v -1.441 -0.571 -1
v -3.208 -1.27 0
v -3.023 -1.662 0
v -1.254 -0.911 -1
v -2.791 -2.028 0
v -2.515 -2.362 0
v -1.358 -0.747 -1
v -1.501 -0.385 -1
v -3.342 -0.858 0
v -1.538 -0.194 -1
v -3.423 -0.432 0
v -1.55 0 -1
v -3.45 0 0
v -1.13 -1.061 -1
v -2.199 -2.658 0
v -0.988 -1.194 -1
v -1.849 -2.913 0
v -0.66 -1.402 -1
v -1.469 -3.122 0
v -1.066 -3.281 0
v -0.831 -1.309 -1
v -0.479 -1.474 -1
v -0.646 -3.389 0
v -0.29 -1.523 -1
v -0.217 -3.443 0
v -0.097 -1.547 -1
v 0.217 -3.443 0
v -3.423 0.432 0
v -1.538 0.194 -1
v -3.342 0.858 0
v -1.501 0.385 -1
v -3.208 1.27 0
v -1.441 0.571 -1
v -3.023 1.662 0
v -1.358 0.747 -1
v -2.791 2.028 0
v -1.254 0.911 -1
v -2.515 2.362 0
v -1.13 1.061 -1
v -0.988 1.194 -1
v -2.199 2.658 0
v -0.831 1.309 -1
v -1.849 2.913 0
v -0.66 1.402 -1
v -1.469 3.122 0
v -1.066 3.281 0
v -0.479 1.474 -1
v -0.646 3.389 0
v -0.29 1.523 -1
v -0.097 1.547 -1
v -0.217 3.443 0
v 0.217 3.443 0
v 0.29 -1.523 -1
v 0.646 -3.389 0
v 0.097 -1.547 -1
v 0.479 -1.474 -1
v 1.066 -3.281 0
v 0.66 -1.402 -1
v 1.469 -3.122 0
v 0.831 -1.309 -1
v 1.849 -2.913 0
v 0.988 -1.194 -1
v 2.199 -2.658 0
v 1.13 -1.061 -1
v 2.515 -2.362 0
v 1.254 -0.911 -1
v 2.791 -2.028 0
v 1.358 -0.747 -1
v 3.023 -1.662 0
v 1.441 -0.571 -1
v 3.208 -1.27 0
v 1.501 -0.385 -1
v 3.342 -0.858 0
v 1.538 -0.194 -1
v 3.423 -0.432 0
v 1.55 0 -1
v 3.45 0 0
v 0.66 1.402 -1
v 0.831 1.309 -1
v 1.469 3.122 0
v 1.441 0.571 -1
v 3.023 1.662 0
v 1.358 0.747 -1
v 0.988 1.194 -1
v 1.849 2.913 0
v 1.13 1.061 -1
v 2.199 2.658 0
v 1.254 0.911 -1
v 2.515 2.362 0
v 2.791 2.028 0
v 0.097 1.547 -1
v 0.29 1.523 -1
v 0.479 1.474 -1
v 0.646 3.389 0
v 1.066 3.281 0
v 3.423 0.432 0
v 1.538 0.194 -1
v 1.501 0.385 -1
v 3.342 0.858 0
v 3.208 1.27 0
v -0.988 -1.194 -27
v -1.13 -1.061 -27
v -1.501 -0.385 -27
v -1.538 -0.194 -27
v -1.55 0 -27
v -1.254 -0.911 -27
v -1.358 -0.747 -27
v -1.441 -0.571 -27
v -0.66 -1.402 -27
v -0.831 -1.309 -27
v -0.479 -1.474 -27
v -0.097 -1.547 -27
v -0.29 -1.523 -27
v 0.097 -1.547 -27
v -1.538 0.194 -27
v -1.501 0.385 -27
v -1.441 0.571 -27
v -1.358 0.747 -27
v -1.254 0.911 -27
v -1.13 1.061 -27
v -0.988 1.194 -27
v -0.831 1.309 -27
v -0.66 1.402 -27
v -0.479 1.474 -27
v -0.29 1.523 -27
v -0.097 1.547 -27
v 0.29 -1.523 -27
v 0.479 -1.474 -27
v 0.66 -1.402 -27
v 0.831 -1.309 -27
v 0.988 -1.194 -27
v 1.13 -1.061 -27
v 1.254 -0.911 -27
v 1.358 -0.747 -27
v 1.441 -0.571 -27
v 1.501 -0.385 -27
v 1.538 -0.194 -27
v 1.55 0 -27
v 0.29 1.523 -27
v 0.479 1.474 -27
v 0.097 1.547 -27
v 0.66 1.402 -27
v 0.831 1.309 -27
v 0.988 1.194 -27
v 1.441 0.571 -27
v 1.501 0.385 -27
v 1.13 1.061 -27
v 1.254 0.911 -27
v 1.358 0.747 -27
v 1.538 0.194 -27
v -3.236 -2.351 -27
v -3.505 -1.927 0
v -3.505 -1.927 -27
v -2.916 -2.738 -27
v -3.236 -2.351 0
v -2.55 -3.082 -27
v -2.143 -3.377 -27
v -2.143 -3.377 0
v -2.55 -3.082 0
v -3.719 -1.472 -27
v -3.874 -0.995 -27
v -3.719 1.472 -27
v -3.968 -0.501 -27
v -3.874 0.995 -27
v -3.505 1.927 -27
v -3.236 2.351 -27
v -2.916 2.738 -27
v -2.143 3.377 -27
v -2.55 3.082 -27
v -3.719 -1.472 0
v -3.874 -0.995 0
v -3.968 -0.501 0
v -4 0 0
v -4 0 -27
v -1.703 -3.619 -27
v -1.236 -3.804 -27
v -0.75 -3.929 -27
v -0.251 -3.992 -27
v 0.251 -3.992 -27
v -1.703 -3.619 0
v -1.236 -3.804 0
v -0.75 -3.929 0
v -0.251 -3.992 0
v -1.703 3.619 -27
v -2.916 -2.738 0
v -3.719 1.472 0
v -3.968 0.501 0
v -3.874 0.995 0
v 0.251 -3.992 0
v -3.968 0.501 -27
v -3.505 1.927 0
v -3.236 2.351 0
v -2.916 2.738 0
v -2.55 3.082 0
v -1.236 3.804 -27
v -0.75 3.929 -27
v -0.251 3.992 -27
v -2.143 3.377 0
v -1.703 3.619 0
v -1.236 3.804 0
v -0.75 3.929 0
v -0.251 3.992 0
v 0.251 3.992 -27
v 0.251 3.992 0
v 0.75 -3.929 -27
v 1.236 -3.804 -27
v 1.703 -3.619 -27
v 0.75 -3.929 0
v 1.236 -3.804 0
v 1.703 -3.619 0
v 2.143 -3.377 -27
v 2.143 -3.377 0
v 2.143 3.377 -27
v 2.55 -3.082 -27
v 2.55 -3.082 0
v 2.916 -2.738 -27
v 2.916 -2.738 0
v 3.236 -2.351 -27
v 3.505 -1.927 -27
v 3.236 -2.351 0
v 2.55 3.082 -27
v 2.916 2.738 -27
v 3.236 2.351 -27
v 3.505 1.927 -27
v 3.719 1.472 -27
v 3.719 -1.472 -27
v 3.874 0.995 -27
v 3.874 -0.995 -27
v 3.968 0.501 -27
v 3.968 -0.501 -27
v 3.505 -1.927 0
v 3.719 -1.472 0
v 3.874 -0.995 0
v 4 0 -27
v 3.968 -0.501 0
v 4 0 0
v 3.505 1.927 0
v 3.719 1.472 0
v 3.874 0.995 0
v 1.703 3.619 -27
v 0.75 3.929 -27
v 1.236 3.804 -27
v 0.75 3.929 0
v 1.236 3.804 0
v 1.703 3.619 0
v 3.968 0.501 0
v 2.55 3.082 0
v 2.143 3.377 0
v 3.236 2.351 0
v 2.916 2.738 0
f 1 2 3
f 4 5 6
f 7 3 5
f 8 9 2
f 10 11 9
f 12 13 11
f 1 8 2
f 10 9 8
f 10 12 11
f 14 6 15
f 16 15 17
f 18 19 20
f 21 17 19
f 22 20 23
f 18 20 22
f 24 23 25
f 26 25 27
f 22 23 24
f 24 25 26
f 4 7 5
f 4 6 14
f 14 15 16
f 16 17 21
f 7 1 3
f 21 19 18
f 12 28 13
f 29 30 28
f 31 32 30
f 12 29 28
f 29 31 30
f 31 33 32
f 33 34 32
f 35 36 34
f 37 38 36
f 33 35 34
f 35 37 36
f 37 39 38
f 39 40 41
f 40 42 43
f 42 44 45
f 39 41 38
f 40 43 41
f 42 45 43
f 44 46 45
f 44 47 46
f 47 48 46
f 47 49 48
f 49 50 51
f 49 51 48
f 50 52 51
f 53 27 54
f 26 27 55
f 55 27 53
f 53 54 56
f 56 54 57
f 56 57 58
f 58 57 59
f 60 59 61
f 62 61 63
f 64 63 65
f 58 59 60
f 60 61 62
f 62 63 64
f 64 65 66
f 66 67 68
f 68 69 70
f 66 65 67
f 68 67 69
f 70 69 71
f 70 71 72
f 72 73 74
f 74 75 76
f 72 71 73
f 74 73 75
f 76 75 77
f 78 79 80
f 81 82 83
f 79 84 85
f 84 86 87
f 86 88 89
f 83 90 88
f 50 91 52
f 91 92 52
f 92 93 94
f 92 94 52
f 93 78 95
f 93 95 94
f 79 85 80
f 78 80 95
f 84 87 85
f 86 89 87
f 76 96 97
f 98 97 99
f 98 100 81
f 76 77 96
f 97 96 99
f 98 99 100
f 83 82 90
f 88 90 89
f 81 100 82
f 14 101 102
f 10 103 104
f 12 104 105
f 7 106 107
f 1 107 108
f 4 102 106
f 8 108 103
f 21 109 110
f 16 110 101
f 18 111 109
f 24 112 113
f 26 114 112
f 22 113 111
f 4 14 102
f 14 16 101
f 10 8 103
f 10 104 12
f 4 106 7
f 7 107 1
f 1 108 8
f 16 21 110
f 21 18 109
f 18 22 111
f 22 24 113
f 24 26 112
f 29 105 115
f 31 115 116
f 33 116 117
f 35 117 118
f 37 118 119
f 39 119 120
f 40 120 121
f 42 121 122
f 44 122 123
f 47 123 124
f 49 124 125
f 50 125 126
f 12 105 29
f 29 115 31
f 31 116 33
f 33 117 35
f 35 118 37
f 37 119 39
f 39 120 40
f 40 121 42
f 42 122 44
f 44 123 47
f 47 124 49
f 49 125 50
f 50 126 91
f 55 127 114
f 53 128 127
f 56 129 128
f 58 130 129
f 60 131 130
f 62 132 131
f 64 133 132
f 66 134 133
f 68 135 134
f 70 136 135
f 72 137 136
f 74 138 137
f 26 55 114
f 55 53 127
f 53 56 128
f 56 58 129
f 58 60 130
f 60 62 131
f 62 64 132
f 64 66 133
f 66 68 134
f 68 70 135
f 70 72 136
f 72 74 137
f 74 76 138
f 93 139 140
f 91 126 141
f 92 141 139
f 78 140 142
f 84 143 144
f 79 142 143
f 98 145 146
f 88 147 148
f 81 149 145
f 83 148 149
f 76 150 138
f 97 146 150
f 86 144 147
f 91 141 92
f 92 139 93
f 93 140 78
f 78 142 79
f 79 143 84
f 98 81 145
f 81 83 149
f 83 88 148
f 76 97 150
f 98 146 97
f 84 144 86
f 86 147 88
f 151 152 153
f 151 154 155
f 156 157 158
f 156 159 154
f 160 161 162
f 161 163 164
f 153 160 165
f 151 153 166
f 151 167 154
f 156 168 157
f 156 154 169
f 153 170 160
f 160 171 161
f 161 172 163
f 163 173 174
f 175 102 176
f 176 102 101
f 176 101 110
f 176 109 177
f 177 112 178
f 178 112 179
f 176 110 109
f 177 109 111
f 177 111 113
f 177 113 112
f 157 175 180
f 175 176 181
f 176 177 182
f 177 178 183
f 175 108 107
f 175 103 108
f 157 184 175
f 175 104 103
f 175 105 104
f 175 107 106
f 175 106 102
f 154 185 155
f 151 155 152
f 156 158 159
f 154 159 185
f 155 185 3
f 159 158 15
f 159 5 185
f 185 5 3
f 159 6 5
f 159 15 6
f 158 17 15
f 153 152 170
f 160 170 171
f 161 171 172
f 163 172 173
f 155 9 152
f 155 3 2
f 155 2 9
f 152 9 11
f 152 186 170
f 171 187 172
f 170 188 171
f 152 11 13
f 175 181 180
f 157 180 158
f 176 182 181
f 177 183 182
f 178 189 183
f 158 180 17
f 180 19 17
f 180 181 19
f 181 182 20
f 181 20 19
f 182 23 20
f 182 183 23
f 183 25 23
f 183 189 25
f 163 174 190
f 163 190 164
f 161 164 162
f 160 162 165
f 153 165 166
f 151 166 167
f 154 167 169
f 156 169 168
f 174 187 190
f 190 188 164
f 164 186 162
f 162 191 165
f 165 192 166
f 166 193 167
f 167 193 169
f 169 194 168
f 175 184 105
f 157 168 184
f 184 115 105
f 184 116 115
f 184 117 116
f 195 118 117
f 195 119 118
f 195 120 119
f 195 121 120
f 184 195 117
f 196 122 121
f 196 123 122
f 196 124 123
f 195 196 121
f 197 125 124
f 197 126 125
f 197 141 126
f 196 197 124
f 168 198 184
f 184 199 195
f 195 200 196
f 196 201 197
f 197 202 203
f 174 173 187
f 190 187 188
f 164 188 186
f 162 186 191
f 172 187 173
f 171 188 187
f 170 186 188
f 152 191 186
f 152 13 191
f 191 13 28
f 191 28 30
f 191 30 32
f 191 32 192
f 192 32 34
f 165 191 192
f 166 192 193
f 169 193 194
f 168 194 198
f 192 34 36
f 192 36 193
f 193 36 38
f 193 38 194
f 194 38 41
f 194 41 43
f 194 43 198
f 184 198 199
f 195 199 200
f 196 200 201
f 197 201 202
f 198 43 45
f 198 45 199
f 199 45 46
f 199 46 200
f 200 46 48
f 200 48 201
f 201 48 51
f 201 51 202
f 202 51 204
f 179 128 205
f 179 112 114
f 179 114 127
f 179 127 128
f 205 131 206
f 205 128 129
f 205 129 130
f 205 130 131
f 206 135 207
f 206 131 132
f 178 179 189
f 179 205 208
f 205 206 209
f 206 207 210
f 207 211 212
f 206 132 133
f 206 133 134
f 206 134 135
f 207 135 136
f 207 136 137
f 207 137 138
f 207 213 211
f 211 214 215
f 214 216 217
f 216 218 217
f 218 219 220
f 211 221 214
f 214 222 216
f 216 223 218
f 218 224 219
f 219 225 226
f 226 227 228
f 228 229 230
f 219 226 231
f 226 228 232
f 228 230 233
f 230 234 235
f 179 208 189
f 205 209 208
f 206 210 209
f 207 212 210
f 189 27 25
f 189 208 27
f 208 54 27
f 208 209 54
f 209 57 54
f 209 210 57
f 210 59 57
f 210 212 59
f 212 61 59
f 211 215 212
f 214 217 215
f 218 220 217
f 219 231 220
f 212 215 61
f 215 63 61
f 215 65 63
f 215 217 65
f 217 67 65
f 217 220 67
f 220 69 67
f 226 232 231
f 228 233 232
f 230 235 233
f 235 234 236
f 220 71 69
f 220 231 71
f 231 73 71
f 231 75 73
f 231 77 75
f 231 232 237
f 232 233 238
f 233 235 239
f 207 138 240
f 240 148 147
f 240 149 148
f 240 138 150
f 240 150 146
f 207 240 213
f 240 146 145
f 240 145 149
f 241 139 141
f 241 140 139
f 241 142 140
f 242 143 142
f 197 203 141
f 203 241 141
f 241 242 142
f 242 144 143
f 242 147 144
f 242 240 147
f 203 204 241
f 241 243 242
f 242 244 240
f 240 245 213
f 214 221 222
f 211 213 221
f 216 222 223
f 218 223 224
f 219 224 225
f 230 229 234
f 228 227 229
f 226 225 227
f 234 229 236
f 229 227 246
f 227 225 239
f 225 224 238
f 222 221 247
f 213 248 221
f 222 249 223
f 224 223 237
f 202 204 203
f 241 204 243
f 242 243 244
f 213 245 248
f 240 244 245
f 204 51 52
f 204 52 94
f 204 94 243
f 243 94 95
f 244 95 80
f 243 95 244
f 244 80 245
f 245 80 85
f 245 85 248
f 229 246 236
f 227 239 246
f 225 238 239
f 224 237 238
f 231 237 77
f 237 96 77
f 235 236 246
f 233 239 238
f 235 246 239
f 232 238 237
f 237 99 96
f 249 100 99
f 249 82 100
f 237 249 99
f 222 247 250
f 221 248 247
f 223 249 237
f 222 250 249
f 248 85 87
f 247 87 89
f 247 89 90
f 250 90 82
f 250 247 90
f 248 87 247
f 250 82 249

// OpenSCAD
$fn = 50;

difference() {
	union() {
		translate(v = [0, 0, -27.0]) {
			cylinder(h = 30, r = 4.0);
		}
	}
	union() {
		translate(v = [0, 0, 0]) {
			rotate(a = [0, 0, 0]) {
				difference() {
					union() {
						translate(v = [0, 0, -30.0]) {
							cylinder(h = 30, r = 1.25);
						}
						translate(v = [0, 0, -1.0]) {
							cylinder(h = 1.0, r1 = 1.55, r2 = 3.45);
						}
						translate(v = [0, 0, -30.0]) {
							cylinder(h = 30, r = 1.55);
						}
						translate(v = [0, 0, -30.0]) {
							cylinder(h = 30, r = 1.25);
						}
					}
					union();
				}
			}
		}
		#cylinder(h = 3, r = 5.0);
	}
}
